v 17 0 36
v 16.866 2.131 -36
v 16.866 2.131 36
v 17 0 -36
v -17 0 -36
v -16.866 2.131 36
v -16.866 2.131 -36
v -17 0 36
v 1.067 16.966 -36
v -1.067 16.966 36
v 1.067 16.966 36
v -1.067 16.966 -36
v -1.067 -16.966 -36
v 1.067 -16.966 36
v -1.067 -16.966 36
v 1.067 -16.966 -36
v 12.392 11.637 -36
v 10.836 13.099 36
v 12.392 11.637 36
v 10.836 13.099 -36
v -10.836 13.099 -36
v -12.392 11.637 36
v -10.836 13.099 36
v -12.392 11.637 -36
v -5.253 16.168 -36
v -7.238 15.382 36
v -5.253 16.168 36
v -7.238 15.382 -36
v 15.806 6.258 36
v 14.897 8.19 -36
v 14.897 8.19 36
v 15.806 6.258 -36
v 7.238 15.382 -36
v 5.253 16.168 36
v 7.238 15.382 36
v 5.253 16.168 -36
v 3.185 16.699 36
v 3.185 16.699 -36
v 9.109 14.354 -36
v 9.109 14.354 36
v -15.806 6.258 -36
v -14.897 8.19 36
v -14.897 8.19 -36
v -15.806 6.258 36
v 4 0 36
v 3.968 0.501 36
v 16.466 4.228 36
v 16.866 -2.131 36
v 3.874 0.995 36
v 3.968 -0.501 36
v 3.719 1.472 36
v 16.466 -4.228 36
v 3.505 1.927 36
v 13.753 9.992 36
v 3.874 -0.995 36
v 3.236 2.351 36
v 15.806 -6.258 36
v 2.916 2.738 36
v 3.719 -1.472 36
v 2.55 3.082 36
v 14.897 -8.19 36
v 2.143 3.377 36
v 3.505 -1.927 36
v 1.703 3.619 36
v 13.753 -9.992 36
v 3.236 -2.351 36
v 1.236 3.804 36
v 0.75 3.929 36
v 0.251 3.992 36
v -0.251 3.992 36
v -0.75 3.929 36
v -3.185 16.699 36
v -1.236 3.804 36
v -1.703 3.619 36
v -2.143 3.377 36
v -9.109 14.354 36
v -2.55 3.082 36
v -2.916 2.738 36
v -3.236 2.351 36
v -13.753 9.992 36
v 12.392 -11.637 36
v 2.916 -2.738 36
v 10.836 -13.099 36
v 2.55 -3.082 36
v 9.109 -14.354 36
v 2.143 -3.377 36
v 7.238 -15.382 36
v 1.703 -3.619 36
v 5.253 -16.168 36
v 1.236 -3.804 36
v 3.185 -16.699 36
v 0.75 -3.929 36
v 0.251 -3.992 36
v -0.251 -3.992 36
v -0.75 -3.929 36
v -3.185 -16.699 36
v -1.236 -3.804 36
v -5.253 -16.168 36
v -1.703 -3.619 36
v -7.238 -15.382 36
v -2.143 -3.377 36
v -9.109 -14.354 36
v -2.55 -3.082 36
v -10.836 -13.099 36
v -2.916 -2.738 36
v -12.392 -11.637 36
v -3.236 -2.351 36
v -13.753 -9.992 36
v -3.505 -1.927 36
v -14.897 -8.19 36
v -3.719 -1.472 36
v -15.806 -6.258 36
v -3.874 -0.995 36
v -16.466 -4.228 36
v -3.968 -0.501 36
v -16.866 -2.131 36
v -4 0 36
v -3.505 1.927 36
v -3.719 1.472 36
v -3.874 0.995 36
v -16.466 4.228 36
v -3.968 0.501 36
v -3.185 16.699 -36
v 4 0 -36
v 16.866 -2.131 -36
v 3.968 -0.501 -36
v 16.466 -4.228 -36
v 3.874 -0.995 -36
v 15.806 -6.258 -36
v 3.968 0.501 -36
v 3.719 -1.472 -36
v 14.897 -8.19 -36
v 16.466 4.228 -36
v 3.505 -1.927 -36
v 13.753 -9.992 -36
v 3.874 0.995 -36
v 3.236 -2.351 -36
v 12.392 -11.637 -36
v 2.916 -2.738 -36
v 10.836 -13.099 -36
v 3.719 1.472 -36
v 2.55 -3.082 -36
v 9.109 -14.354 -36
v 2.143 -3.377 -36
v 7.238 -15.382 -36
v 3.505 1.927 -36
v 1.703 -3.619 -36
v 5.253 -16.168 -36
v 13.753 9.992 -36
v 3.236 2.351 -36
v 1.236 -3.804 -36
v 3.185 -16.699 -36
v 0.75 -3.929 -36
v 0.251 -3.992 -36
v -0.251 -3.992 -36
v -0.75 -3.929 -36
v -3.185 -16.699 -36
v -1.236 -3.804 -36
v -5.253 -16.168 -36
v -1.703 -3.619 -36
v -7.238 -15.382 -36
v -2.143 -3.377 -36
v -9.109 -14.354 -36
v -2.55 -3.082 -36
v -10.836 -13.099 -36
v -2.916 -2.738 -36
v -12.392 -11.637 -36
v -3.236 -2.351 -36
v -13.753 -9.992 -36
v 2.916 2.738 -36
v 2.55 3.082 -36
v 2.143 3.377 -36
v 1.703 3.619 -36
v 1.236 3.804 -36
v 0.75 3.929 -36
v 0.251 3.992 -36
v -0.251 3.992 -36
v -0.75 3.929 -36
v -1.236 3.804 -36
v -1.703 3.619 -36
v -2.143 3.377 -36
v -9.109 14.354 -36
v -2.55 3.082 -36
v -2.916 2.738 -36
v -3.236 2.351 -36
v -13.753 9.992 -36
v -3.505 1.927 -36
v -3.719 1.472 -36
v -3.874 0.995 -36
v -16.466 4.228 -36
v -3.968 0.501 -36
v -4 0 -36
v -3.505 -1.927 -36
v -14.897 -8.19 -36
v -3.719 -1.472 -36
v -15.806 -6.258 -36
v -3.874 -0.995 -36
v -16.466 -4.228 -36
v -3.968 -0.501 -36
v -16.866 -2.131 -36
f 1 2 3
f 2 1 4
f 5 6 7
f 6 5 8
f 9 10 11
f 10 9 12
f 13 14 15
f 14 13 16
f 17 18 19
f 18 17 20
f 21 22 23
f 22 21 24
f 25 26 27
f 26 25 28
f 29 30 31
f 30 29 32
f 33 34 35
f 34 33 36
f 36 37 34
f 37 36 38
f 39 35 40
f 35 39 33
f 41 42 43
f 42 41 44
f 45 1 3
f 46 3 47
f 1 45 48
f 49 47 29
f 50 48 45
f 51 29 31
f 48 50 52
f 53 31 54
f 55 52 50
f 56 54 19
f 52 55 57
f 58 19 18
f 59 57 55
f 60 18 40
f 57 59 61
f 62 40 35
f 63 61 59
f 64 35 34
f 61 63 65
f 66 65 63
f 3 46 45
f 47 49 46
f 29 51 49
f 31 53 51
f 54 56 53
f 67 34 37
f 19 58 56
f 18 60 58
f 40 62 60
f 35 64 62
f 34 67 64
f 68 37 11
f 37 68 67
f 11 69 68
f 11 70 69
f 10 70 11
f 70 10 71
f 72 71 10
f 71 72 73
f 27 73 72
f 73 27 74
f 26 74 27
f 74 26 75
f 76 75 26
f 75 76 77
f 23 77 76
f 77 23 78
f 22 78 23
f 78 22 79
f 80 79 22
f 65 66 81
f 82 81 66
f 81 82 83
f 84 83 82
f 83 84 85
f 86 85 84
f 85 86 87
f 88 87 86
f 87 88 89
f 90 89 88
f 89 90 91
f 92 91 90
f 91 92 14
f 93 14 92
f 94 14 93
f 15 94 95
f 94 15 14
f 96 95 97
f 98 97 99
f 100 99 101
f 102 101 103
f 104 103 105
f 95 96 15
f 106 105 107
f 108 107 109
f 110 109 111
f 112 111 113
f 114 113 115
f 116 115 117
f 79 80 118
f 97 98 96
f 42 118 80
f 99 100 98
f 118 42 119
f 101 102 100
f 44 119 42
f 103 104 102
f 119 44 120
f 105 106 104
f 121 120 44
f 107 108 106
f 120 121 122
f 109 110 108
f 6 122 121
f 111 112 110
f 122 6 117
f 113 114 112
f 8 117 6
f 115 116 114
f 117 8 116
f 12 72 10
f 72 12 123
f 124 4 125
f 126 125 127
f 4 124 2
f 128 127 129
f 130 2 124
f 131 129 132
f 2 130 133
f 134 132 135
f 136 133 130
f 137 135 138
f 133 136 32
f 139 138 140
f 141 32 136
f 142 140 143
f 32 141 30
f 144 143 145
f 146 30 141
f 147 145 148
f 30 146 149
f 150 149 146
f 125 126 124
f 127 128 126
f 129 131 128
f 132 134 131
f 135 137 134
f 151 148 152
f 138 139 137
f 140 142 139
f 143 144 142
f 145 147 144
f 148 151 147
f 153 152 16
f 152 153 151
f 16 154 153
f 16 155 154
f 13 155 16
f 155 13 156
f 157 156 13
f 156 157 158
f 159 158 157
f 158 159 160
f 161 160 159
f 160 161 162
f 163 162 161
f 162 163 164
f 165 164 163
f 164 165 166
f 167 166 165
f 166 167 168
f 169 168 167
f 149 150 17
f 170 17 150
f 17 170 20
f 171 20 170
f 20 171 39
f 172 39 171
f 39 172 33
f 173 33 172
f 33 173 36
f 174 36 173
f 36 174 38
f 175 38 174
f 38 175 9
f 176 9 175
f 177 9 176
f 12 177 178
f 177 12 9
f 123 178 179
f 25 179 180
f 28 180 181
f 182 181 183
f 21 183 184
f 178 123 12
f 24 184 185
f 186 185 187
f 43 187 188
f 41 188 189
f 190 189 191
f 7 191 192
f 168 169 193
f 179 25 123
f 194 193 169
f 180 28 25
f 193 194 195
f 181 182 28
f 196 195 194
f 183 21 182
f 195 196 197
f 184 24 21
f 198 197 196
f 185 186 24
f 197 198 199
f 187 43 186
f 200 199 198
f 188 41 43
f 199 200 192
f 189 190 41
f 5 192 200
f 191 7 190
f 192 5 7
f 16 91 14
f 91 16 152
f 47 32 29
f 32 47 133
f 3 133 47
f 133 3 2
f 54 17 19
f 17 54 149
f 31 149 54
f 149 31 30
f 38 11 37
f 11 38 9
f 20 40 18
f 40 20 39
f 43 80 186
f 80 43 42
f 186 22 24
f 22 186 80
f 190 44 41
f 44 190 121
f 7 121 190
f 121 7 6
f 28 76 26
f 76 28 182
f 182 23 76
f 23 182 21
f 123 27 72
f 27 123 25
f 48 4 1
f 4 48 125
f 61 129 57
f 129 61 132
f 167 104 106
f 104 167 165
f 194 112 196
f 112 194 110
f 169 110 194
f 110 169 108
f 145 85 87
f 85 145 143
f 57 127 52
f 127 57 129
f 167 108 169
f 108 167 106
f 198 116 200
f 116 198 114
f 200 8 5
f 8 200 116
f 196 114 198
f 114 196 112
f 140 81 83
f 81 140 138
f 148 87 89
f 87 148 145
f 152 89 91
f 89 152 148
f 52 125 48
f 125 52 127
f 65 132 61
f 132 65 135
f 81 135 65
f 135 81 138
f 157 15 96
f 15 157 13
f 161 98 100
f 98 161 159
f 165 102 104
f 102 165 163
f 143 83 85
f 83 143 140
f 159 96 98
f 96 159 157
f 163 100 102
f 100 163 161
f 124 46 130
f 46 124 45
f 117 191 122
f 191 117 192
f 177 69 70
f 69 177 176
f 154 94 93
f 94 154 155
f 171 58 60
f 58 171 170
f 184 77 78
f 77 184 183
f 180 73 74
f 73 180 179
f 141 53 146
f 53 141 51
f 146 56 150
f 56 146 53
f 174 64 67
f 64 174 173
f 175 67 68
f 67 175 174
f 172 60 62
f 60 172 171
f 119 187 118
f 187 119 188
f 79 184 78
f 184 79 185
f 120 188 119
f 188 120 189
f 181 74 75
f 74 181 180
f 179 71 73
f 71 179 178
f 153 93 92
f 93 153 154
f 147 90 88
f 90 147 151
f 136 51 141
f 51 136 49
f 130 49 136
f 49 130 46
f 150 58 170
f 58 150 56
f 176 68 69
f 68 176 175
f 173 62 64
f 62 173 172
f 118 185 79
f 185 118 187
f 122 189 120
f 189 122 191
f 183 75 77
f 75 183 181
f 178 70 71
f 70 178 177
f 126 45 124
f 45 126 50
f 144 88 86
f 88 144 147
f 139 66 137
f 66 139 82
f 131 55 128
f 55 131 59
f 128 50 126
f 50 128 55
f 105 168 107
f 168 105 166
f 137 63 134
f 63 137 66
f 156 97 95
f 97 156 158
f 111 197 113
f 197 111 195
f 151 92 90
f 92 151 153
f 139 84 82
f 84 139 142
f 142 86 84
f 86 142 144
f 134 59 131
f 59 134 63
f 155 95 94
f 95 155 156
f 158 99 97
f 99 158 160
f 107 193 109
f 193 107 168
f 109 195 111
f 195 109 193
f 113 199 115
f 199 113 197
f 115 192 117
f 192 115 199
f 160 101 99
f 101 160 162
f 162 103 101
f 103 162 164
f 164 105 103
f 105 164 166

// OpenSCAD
$fn = 50;


difference() {
	union() {
		translate(v = [0, 0, -36.0000000000]) {
			cylinder(h = 72, r = 17.0000000000);
		}
	}
	union() {
		translate(v = [0, 0, -100.0000000000]) {
			cylinder(h = 200, r = 4);
		}
	}
}
